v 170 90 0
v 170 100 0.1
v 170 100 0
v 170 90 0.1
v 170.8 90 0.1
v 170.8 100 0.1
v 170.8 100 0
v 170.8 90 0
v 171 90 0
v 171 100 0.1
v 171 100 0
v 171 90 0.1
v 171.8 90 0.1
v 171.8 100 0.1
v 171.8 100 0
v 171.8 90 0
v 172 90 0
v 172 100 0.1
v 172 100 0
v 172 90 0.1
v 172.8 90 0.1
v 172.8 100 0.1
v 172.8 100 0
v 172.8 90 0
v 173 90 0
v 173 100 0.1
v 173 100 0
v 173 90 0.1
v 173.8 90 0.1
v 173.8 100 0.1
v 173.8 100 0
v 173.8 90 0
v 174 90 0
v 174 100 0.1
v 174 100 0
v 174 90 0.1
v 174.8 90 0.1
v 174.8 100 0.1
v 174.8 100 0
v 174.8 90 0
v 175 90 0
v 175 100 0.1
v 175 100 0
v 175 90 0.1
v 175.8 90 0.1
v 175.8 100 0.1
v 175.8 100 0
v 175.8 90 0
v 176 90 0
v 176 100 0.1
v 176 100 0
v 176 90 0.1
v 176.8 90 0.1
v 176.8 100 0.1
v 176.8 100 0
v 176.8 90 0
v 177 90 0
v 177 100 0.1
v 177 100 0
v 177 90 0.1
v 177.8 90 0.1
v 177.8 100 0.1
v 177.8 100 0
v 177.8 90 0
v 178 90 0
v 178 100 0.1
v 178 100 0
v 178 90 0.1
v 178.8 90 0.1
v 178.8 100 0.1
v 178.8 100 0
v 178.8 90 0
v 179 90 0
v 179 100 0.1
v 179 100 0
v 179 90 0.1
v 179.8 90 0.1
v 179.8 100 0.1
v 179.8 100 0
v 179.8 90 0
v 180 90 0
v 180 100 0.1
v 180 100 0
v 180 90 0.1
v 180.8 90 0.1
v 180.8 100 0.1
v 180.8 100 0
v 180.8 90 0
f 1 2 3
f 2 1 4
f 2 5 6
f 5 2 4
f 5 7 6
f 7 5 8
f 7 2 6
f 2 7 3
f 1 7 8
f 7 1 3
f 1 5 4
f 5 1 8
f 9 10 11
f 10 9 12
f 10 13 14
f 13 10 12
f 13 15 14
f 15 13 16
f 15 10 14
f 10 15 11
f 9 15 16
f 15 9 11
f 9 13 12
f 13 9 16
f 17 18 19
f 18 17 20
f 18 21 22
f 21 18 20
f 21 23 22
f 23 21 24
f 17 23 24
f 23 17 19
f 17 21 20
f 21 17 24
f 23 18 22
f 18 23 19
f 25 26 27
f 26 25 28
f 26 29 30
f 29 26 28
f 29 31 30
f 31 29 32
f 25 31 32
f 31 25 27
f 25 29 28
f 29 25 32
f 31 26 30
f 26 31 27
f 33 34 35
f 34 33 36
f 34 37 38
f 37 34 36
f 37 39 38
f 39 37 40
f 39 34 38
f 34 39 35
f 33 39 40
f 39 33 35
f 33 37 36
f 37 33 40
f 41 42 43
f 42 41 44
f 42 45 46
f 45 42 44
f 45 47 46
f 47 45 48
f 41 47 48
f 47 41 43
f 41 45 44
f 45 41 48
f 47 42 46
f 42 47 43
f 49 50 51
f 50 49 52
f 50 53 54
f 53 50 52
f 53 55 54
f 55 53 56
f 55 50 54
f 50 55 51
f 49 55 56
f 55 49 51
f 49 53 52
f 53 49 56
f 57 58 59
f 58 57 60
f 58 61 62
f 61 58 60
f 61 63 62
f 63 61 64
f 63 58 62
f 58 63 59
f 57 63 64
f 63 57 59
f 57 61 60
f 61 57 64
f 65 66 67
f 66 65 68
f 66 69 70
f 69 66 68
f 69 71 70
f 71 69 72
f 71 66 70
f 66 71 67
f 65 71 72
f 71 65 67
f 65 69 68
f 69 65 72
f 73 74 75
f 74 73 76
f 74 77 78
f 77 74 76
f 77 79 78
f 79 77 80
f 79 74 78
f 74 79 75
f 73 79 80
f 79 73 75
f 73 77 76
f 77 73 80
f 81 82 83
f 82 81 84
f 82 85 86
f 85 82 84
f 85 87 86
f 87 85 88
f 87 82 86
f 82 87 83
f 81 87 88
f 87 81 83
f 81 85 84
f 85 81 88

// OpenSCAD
translate([10+160,10+80,0])
        for (i = [0 : 10]){
            translate([i,0,0])
                cube(size = [0.8,10,0.1]);
    }
